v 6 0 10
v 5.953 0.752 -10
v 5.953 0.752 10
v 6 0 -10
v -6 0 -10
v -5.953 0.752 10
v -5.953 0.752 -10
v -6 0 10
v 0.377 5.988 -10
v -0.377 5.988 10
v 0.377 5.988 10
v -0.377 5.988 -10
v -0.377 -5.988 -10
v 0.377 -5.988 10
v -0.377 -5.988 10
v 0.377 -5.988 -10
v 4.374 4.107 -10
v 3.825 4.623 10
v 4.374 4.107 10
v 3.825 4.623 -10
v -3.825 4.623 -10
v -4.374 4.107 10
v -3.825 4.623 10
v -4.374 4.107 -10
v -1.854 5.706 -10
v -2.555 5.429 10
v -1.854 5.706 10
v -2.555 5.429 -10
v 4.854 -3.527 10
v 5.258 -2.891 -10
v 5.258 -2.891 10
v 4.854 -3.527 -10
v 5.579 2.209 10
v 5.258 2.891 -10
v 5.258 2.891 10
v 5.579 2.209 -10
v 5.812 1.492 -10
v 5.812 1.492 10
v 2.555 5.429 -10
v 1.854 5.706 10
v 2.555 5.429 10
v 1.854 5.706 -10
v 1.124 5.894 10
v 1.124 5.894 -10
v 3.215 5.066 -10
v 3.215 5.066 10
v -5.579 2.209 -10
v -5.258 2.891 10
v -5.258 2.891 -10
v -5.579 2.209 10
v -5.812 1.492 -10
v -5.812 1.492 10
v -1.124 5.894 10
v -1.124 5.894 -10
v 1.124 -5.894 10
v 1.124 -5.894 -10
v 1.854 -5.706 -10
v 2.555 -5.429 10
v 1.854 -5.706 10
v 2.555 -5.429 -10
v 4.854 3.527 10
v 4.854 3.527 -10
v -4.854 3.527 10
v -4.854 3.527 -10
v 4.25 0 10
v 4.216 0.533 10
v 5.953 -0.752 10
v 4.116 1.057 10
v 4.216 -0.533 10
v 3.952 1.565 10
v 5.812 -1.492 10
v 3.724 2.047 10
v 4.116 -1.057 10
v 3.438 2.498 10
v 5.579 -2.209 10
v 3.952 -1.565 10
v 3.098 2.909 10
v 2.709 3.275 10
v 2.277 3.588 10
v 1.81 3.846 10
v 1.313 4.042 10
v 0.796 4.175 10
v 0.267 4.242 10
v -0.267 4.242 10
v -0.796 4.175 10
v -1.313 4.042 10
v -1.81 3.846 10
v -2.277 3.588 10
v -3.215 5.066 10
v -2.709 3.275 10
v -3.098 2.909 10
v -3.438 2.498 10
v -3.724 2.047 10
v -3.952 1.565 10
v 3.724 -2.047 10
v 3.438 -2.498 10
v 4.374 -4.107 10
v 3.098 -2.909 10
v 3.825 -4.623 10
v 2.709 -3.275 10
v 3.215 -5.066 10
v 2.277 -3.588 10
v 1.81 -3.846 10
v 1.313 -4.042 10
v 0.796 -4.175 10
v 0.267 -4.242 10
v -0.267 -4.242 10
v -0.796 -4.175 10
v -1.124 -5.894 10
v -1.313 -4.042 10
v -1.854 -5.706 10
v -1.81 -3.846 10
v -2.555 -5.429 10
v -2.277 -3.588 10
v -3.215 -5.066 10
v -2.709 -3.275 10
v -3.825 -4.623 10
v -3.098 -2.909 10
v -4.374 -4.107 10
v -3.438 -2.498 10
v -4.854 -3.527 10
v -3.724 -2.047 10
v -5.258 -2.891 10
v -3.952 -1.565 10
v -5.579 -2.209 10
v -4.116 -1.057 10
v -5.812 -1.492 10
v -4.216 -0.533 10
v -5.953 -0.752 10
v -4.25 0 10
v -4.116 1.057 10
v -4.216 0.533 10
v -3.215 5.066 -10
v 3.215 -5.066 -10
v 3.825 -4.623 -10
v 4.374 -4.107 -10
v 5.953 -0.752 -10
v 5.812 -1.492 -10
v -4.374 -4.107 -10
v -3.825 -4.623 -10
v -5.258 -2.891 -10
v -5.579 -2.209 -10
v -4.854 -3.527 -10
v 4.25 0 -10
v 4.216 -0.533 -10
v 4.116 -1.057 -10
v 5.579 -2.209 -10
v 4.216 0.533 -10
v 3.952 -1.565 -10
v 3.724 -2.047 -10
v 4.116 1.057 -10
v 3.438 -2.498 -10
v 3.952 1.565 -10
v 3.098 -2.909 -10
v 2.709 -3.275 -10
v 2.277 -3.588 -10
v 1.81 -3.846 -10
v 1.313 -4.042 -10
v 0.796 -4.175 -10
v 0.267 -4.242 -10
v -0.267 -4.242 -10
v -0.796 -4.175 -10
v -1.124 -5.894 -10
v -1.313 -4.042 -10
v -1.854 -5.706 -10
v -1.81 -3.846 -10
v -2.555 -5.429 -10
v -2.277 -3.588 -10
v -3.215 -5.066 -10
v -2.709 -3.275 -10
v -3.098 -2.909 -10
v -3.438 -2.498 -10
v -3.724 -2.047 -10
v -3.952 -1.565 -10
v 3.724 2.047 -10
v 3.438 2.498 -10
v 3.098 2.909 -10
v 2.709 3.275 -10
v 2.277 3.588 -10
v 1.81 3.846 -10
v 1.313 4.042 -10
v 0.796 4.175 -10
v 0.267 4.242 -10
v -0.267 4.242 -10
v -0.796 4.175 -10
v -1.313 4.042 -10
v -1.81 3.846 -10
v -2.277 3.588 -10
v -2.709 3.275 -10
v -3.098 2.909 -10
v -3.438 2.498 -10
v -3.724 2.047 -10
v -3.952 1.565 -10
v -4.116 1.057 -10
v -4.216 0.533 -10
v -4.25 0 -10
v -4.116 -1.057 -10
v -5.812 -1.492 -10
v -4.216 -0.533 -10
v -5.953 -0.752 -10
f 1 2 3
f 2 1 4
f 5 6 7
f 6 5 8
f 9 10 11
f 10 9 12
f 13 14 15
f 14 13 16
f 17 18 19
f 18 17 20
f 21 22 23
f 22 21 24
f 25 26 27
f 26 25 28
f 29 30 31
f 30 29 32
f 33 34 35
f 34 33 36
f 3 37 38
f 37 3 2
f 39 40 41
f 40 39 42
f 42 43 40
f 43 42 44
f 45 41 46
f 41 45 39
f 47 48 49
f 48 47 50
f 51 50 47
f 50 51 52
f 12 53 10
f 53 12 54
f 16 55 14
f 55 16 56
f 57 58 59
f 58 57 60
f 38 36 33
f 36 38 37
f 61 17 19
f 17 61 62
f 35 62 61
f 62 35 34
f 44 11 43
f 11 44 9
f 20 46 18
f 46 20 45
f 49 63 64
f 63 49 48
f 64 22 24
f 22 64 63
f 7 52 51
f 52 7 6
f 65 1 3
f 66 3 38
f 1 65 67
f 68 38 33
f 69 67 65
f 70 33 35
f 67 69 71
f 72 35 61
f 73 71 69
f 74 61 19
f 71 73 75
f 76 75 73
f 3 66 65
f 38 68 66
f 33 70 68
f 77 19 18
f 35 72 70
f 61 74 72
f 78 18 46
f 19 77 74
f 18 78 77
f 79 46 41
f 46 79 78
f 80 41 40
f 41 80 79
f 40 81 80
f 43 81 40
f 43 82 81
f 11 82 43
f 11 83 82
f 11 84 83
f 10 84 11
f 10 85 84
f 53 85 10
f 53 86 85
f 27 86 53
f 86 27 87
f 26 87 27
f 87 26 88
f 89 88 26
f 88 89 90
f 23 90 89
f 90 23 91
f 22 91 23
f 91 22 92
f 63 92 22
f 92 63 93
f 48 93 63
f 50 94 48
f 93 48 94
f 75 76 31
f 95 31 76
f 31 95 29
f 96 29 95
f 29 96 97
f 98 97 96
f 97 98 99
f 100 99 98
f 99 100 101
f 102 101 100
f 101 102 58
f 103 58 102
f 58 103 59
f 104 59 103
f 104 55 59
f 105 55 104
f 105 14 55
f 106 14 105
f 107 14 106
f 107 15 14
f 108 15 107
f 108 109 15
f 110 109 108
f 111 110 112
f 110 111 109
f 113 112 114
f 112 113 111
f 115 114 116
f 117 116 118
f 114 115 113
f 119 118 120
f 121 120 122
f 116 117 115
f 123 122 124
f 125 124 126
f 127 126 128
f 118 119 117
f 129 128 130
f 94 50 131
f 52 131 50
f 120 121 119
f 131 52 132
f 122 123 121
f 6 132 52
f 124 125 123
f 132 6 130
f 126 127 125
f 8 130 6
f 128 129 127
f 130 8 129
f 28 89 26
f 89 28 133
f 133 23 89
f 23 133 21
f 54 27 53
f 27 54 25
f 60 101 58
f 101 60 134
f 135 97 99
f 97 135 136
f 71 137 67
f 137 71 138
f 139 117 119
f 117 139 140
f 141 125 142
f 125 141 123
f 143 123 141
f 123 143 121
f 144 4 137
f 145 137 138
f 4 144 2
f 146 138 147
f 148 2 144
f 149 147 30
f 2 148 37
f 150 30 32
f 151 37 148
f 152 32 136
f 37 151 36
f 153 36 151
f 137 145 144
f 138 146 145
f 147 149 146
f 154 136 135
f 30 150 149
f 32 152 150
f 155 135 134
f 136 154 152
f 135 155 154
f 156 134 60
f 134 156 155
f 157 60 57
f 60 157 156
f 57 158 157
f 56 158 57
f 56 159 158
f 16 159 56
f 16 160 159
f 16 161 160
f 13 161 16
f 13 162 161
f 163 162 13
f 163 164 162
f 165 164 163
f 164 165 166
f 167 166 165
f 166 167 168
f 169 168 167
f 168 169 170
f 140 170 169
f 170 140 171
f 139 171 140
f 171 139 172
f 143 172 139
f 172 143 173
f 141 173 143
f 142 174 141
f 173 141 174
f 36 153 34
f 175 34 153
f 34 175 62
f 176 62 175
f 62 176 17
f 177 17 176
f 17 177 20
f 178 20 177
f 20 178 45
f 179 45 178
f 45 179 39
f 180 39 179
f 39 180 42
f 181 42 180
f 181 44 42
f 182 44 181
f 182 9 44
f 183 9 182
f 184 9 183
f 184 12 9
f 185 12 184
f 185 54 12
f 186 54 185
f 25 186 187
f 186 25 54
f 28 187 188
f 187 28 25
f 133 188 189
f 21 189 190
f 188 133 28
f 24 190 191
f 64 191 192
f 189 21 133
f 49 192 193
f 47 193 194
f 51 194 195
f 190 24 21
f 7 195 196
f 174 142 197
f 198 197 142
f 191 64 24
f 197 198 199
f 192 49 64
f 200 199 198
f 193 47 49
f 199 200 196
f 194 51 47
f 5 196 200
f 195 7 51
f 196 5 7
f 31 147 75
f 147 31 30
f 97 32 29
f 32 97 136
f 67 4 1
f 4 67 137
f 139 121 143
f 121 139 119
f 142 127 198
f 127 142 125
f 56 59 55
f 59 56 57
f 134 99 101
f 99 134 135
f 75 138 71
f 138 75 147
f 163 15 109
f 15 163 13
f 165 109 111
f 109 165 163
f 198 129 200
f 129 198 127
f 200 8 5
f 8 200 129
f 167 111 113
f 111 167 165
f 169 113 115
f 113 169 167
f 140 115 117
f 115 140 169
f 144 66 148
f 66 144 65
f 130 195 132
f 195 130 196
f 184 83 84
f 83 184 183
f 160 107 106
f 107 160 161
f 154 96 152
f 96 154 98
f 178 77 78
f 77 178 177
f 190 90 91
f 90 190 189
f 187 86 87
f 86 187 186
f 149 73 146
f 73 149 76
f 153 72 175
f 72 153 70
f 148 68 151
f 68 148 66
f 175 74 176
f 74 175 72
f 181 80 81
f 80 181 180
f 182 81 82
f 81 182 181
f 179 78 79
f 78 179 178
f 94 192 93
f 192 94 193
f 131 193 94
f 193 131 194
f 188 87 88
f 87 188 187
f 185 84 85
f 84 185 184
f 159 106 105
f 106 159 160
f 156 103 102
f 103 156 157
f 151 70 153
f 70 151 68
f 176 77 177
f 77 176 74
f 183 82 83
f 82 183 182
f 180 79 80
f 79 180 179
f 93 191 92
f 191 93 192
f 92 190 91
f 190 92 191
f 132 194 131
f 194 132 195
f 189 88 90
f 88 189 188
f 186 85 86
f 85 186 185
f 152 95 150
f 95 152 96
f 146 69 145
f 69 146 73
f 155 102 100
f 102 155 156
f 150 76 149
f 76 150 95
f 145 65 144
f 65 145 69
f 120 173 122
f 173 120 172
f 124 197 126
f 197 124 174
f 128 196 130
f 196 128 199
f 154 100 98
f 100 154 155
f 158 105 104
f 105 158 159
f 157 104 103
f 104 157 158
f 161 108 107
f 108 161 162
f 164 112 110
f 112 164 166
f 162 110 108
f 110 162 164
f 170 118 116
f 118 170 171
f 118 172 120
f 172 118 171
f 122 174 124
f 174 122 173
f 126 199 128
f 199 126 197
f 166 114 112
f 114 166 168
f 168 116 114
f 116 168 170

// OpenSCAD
$fn = 50;


difference() {
	union() {
		translate(v = [0, 0, -10.0000000000]) {
			cylinder(h = 20, r = 6.0000000000);
		}
	}
	union() {
		translate(v = [0, 0, -100.0000000000]) {
			cylinder(h = 200, r = 4.2500000000);
		}
	}
}
